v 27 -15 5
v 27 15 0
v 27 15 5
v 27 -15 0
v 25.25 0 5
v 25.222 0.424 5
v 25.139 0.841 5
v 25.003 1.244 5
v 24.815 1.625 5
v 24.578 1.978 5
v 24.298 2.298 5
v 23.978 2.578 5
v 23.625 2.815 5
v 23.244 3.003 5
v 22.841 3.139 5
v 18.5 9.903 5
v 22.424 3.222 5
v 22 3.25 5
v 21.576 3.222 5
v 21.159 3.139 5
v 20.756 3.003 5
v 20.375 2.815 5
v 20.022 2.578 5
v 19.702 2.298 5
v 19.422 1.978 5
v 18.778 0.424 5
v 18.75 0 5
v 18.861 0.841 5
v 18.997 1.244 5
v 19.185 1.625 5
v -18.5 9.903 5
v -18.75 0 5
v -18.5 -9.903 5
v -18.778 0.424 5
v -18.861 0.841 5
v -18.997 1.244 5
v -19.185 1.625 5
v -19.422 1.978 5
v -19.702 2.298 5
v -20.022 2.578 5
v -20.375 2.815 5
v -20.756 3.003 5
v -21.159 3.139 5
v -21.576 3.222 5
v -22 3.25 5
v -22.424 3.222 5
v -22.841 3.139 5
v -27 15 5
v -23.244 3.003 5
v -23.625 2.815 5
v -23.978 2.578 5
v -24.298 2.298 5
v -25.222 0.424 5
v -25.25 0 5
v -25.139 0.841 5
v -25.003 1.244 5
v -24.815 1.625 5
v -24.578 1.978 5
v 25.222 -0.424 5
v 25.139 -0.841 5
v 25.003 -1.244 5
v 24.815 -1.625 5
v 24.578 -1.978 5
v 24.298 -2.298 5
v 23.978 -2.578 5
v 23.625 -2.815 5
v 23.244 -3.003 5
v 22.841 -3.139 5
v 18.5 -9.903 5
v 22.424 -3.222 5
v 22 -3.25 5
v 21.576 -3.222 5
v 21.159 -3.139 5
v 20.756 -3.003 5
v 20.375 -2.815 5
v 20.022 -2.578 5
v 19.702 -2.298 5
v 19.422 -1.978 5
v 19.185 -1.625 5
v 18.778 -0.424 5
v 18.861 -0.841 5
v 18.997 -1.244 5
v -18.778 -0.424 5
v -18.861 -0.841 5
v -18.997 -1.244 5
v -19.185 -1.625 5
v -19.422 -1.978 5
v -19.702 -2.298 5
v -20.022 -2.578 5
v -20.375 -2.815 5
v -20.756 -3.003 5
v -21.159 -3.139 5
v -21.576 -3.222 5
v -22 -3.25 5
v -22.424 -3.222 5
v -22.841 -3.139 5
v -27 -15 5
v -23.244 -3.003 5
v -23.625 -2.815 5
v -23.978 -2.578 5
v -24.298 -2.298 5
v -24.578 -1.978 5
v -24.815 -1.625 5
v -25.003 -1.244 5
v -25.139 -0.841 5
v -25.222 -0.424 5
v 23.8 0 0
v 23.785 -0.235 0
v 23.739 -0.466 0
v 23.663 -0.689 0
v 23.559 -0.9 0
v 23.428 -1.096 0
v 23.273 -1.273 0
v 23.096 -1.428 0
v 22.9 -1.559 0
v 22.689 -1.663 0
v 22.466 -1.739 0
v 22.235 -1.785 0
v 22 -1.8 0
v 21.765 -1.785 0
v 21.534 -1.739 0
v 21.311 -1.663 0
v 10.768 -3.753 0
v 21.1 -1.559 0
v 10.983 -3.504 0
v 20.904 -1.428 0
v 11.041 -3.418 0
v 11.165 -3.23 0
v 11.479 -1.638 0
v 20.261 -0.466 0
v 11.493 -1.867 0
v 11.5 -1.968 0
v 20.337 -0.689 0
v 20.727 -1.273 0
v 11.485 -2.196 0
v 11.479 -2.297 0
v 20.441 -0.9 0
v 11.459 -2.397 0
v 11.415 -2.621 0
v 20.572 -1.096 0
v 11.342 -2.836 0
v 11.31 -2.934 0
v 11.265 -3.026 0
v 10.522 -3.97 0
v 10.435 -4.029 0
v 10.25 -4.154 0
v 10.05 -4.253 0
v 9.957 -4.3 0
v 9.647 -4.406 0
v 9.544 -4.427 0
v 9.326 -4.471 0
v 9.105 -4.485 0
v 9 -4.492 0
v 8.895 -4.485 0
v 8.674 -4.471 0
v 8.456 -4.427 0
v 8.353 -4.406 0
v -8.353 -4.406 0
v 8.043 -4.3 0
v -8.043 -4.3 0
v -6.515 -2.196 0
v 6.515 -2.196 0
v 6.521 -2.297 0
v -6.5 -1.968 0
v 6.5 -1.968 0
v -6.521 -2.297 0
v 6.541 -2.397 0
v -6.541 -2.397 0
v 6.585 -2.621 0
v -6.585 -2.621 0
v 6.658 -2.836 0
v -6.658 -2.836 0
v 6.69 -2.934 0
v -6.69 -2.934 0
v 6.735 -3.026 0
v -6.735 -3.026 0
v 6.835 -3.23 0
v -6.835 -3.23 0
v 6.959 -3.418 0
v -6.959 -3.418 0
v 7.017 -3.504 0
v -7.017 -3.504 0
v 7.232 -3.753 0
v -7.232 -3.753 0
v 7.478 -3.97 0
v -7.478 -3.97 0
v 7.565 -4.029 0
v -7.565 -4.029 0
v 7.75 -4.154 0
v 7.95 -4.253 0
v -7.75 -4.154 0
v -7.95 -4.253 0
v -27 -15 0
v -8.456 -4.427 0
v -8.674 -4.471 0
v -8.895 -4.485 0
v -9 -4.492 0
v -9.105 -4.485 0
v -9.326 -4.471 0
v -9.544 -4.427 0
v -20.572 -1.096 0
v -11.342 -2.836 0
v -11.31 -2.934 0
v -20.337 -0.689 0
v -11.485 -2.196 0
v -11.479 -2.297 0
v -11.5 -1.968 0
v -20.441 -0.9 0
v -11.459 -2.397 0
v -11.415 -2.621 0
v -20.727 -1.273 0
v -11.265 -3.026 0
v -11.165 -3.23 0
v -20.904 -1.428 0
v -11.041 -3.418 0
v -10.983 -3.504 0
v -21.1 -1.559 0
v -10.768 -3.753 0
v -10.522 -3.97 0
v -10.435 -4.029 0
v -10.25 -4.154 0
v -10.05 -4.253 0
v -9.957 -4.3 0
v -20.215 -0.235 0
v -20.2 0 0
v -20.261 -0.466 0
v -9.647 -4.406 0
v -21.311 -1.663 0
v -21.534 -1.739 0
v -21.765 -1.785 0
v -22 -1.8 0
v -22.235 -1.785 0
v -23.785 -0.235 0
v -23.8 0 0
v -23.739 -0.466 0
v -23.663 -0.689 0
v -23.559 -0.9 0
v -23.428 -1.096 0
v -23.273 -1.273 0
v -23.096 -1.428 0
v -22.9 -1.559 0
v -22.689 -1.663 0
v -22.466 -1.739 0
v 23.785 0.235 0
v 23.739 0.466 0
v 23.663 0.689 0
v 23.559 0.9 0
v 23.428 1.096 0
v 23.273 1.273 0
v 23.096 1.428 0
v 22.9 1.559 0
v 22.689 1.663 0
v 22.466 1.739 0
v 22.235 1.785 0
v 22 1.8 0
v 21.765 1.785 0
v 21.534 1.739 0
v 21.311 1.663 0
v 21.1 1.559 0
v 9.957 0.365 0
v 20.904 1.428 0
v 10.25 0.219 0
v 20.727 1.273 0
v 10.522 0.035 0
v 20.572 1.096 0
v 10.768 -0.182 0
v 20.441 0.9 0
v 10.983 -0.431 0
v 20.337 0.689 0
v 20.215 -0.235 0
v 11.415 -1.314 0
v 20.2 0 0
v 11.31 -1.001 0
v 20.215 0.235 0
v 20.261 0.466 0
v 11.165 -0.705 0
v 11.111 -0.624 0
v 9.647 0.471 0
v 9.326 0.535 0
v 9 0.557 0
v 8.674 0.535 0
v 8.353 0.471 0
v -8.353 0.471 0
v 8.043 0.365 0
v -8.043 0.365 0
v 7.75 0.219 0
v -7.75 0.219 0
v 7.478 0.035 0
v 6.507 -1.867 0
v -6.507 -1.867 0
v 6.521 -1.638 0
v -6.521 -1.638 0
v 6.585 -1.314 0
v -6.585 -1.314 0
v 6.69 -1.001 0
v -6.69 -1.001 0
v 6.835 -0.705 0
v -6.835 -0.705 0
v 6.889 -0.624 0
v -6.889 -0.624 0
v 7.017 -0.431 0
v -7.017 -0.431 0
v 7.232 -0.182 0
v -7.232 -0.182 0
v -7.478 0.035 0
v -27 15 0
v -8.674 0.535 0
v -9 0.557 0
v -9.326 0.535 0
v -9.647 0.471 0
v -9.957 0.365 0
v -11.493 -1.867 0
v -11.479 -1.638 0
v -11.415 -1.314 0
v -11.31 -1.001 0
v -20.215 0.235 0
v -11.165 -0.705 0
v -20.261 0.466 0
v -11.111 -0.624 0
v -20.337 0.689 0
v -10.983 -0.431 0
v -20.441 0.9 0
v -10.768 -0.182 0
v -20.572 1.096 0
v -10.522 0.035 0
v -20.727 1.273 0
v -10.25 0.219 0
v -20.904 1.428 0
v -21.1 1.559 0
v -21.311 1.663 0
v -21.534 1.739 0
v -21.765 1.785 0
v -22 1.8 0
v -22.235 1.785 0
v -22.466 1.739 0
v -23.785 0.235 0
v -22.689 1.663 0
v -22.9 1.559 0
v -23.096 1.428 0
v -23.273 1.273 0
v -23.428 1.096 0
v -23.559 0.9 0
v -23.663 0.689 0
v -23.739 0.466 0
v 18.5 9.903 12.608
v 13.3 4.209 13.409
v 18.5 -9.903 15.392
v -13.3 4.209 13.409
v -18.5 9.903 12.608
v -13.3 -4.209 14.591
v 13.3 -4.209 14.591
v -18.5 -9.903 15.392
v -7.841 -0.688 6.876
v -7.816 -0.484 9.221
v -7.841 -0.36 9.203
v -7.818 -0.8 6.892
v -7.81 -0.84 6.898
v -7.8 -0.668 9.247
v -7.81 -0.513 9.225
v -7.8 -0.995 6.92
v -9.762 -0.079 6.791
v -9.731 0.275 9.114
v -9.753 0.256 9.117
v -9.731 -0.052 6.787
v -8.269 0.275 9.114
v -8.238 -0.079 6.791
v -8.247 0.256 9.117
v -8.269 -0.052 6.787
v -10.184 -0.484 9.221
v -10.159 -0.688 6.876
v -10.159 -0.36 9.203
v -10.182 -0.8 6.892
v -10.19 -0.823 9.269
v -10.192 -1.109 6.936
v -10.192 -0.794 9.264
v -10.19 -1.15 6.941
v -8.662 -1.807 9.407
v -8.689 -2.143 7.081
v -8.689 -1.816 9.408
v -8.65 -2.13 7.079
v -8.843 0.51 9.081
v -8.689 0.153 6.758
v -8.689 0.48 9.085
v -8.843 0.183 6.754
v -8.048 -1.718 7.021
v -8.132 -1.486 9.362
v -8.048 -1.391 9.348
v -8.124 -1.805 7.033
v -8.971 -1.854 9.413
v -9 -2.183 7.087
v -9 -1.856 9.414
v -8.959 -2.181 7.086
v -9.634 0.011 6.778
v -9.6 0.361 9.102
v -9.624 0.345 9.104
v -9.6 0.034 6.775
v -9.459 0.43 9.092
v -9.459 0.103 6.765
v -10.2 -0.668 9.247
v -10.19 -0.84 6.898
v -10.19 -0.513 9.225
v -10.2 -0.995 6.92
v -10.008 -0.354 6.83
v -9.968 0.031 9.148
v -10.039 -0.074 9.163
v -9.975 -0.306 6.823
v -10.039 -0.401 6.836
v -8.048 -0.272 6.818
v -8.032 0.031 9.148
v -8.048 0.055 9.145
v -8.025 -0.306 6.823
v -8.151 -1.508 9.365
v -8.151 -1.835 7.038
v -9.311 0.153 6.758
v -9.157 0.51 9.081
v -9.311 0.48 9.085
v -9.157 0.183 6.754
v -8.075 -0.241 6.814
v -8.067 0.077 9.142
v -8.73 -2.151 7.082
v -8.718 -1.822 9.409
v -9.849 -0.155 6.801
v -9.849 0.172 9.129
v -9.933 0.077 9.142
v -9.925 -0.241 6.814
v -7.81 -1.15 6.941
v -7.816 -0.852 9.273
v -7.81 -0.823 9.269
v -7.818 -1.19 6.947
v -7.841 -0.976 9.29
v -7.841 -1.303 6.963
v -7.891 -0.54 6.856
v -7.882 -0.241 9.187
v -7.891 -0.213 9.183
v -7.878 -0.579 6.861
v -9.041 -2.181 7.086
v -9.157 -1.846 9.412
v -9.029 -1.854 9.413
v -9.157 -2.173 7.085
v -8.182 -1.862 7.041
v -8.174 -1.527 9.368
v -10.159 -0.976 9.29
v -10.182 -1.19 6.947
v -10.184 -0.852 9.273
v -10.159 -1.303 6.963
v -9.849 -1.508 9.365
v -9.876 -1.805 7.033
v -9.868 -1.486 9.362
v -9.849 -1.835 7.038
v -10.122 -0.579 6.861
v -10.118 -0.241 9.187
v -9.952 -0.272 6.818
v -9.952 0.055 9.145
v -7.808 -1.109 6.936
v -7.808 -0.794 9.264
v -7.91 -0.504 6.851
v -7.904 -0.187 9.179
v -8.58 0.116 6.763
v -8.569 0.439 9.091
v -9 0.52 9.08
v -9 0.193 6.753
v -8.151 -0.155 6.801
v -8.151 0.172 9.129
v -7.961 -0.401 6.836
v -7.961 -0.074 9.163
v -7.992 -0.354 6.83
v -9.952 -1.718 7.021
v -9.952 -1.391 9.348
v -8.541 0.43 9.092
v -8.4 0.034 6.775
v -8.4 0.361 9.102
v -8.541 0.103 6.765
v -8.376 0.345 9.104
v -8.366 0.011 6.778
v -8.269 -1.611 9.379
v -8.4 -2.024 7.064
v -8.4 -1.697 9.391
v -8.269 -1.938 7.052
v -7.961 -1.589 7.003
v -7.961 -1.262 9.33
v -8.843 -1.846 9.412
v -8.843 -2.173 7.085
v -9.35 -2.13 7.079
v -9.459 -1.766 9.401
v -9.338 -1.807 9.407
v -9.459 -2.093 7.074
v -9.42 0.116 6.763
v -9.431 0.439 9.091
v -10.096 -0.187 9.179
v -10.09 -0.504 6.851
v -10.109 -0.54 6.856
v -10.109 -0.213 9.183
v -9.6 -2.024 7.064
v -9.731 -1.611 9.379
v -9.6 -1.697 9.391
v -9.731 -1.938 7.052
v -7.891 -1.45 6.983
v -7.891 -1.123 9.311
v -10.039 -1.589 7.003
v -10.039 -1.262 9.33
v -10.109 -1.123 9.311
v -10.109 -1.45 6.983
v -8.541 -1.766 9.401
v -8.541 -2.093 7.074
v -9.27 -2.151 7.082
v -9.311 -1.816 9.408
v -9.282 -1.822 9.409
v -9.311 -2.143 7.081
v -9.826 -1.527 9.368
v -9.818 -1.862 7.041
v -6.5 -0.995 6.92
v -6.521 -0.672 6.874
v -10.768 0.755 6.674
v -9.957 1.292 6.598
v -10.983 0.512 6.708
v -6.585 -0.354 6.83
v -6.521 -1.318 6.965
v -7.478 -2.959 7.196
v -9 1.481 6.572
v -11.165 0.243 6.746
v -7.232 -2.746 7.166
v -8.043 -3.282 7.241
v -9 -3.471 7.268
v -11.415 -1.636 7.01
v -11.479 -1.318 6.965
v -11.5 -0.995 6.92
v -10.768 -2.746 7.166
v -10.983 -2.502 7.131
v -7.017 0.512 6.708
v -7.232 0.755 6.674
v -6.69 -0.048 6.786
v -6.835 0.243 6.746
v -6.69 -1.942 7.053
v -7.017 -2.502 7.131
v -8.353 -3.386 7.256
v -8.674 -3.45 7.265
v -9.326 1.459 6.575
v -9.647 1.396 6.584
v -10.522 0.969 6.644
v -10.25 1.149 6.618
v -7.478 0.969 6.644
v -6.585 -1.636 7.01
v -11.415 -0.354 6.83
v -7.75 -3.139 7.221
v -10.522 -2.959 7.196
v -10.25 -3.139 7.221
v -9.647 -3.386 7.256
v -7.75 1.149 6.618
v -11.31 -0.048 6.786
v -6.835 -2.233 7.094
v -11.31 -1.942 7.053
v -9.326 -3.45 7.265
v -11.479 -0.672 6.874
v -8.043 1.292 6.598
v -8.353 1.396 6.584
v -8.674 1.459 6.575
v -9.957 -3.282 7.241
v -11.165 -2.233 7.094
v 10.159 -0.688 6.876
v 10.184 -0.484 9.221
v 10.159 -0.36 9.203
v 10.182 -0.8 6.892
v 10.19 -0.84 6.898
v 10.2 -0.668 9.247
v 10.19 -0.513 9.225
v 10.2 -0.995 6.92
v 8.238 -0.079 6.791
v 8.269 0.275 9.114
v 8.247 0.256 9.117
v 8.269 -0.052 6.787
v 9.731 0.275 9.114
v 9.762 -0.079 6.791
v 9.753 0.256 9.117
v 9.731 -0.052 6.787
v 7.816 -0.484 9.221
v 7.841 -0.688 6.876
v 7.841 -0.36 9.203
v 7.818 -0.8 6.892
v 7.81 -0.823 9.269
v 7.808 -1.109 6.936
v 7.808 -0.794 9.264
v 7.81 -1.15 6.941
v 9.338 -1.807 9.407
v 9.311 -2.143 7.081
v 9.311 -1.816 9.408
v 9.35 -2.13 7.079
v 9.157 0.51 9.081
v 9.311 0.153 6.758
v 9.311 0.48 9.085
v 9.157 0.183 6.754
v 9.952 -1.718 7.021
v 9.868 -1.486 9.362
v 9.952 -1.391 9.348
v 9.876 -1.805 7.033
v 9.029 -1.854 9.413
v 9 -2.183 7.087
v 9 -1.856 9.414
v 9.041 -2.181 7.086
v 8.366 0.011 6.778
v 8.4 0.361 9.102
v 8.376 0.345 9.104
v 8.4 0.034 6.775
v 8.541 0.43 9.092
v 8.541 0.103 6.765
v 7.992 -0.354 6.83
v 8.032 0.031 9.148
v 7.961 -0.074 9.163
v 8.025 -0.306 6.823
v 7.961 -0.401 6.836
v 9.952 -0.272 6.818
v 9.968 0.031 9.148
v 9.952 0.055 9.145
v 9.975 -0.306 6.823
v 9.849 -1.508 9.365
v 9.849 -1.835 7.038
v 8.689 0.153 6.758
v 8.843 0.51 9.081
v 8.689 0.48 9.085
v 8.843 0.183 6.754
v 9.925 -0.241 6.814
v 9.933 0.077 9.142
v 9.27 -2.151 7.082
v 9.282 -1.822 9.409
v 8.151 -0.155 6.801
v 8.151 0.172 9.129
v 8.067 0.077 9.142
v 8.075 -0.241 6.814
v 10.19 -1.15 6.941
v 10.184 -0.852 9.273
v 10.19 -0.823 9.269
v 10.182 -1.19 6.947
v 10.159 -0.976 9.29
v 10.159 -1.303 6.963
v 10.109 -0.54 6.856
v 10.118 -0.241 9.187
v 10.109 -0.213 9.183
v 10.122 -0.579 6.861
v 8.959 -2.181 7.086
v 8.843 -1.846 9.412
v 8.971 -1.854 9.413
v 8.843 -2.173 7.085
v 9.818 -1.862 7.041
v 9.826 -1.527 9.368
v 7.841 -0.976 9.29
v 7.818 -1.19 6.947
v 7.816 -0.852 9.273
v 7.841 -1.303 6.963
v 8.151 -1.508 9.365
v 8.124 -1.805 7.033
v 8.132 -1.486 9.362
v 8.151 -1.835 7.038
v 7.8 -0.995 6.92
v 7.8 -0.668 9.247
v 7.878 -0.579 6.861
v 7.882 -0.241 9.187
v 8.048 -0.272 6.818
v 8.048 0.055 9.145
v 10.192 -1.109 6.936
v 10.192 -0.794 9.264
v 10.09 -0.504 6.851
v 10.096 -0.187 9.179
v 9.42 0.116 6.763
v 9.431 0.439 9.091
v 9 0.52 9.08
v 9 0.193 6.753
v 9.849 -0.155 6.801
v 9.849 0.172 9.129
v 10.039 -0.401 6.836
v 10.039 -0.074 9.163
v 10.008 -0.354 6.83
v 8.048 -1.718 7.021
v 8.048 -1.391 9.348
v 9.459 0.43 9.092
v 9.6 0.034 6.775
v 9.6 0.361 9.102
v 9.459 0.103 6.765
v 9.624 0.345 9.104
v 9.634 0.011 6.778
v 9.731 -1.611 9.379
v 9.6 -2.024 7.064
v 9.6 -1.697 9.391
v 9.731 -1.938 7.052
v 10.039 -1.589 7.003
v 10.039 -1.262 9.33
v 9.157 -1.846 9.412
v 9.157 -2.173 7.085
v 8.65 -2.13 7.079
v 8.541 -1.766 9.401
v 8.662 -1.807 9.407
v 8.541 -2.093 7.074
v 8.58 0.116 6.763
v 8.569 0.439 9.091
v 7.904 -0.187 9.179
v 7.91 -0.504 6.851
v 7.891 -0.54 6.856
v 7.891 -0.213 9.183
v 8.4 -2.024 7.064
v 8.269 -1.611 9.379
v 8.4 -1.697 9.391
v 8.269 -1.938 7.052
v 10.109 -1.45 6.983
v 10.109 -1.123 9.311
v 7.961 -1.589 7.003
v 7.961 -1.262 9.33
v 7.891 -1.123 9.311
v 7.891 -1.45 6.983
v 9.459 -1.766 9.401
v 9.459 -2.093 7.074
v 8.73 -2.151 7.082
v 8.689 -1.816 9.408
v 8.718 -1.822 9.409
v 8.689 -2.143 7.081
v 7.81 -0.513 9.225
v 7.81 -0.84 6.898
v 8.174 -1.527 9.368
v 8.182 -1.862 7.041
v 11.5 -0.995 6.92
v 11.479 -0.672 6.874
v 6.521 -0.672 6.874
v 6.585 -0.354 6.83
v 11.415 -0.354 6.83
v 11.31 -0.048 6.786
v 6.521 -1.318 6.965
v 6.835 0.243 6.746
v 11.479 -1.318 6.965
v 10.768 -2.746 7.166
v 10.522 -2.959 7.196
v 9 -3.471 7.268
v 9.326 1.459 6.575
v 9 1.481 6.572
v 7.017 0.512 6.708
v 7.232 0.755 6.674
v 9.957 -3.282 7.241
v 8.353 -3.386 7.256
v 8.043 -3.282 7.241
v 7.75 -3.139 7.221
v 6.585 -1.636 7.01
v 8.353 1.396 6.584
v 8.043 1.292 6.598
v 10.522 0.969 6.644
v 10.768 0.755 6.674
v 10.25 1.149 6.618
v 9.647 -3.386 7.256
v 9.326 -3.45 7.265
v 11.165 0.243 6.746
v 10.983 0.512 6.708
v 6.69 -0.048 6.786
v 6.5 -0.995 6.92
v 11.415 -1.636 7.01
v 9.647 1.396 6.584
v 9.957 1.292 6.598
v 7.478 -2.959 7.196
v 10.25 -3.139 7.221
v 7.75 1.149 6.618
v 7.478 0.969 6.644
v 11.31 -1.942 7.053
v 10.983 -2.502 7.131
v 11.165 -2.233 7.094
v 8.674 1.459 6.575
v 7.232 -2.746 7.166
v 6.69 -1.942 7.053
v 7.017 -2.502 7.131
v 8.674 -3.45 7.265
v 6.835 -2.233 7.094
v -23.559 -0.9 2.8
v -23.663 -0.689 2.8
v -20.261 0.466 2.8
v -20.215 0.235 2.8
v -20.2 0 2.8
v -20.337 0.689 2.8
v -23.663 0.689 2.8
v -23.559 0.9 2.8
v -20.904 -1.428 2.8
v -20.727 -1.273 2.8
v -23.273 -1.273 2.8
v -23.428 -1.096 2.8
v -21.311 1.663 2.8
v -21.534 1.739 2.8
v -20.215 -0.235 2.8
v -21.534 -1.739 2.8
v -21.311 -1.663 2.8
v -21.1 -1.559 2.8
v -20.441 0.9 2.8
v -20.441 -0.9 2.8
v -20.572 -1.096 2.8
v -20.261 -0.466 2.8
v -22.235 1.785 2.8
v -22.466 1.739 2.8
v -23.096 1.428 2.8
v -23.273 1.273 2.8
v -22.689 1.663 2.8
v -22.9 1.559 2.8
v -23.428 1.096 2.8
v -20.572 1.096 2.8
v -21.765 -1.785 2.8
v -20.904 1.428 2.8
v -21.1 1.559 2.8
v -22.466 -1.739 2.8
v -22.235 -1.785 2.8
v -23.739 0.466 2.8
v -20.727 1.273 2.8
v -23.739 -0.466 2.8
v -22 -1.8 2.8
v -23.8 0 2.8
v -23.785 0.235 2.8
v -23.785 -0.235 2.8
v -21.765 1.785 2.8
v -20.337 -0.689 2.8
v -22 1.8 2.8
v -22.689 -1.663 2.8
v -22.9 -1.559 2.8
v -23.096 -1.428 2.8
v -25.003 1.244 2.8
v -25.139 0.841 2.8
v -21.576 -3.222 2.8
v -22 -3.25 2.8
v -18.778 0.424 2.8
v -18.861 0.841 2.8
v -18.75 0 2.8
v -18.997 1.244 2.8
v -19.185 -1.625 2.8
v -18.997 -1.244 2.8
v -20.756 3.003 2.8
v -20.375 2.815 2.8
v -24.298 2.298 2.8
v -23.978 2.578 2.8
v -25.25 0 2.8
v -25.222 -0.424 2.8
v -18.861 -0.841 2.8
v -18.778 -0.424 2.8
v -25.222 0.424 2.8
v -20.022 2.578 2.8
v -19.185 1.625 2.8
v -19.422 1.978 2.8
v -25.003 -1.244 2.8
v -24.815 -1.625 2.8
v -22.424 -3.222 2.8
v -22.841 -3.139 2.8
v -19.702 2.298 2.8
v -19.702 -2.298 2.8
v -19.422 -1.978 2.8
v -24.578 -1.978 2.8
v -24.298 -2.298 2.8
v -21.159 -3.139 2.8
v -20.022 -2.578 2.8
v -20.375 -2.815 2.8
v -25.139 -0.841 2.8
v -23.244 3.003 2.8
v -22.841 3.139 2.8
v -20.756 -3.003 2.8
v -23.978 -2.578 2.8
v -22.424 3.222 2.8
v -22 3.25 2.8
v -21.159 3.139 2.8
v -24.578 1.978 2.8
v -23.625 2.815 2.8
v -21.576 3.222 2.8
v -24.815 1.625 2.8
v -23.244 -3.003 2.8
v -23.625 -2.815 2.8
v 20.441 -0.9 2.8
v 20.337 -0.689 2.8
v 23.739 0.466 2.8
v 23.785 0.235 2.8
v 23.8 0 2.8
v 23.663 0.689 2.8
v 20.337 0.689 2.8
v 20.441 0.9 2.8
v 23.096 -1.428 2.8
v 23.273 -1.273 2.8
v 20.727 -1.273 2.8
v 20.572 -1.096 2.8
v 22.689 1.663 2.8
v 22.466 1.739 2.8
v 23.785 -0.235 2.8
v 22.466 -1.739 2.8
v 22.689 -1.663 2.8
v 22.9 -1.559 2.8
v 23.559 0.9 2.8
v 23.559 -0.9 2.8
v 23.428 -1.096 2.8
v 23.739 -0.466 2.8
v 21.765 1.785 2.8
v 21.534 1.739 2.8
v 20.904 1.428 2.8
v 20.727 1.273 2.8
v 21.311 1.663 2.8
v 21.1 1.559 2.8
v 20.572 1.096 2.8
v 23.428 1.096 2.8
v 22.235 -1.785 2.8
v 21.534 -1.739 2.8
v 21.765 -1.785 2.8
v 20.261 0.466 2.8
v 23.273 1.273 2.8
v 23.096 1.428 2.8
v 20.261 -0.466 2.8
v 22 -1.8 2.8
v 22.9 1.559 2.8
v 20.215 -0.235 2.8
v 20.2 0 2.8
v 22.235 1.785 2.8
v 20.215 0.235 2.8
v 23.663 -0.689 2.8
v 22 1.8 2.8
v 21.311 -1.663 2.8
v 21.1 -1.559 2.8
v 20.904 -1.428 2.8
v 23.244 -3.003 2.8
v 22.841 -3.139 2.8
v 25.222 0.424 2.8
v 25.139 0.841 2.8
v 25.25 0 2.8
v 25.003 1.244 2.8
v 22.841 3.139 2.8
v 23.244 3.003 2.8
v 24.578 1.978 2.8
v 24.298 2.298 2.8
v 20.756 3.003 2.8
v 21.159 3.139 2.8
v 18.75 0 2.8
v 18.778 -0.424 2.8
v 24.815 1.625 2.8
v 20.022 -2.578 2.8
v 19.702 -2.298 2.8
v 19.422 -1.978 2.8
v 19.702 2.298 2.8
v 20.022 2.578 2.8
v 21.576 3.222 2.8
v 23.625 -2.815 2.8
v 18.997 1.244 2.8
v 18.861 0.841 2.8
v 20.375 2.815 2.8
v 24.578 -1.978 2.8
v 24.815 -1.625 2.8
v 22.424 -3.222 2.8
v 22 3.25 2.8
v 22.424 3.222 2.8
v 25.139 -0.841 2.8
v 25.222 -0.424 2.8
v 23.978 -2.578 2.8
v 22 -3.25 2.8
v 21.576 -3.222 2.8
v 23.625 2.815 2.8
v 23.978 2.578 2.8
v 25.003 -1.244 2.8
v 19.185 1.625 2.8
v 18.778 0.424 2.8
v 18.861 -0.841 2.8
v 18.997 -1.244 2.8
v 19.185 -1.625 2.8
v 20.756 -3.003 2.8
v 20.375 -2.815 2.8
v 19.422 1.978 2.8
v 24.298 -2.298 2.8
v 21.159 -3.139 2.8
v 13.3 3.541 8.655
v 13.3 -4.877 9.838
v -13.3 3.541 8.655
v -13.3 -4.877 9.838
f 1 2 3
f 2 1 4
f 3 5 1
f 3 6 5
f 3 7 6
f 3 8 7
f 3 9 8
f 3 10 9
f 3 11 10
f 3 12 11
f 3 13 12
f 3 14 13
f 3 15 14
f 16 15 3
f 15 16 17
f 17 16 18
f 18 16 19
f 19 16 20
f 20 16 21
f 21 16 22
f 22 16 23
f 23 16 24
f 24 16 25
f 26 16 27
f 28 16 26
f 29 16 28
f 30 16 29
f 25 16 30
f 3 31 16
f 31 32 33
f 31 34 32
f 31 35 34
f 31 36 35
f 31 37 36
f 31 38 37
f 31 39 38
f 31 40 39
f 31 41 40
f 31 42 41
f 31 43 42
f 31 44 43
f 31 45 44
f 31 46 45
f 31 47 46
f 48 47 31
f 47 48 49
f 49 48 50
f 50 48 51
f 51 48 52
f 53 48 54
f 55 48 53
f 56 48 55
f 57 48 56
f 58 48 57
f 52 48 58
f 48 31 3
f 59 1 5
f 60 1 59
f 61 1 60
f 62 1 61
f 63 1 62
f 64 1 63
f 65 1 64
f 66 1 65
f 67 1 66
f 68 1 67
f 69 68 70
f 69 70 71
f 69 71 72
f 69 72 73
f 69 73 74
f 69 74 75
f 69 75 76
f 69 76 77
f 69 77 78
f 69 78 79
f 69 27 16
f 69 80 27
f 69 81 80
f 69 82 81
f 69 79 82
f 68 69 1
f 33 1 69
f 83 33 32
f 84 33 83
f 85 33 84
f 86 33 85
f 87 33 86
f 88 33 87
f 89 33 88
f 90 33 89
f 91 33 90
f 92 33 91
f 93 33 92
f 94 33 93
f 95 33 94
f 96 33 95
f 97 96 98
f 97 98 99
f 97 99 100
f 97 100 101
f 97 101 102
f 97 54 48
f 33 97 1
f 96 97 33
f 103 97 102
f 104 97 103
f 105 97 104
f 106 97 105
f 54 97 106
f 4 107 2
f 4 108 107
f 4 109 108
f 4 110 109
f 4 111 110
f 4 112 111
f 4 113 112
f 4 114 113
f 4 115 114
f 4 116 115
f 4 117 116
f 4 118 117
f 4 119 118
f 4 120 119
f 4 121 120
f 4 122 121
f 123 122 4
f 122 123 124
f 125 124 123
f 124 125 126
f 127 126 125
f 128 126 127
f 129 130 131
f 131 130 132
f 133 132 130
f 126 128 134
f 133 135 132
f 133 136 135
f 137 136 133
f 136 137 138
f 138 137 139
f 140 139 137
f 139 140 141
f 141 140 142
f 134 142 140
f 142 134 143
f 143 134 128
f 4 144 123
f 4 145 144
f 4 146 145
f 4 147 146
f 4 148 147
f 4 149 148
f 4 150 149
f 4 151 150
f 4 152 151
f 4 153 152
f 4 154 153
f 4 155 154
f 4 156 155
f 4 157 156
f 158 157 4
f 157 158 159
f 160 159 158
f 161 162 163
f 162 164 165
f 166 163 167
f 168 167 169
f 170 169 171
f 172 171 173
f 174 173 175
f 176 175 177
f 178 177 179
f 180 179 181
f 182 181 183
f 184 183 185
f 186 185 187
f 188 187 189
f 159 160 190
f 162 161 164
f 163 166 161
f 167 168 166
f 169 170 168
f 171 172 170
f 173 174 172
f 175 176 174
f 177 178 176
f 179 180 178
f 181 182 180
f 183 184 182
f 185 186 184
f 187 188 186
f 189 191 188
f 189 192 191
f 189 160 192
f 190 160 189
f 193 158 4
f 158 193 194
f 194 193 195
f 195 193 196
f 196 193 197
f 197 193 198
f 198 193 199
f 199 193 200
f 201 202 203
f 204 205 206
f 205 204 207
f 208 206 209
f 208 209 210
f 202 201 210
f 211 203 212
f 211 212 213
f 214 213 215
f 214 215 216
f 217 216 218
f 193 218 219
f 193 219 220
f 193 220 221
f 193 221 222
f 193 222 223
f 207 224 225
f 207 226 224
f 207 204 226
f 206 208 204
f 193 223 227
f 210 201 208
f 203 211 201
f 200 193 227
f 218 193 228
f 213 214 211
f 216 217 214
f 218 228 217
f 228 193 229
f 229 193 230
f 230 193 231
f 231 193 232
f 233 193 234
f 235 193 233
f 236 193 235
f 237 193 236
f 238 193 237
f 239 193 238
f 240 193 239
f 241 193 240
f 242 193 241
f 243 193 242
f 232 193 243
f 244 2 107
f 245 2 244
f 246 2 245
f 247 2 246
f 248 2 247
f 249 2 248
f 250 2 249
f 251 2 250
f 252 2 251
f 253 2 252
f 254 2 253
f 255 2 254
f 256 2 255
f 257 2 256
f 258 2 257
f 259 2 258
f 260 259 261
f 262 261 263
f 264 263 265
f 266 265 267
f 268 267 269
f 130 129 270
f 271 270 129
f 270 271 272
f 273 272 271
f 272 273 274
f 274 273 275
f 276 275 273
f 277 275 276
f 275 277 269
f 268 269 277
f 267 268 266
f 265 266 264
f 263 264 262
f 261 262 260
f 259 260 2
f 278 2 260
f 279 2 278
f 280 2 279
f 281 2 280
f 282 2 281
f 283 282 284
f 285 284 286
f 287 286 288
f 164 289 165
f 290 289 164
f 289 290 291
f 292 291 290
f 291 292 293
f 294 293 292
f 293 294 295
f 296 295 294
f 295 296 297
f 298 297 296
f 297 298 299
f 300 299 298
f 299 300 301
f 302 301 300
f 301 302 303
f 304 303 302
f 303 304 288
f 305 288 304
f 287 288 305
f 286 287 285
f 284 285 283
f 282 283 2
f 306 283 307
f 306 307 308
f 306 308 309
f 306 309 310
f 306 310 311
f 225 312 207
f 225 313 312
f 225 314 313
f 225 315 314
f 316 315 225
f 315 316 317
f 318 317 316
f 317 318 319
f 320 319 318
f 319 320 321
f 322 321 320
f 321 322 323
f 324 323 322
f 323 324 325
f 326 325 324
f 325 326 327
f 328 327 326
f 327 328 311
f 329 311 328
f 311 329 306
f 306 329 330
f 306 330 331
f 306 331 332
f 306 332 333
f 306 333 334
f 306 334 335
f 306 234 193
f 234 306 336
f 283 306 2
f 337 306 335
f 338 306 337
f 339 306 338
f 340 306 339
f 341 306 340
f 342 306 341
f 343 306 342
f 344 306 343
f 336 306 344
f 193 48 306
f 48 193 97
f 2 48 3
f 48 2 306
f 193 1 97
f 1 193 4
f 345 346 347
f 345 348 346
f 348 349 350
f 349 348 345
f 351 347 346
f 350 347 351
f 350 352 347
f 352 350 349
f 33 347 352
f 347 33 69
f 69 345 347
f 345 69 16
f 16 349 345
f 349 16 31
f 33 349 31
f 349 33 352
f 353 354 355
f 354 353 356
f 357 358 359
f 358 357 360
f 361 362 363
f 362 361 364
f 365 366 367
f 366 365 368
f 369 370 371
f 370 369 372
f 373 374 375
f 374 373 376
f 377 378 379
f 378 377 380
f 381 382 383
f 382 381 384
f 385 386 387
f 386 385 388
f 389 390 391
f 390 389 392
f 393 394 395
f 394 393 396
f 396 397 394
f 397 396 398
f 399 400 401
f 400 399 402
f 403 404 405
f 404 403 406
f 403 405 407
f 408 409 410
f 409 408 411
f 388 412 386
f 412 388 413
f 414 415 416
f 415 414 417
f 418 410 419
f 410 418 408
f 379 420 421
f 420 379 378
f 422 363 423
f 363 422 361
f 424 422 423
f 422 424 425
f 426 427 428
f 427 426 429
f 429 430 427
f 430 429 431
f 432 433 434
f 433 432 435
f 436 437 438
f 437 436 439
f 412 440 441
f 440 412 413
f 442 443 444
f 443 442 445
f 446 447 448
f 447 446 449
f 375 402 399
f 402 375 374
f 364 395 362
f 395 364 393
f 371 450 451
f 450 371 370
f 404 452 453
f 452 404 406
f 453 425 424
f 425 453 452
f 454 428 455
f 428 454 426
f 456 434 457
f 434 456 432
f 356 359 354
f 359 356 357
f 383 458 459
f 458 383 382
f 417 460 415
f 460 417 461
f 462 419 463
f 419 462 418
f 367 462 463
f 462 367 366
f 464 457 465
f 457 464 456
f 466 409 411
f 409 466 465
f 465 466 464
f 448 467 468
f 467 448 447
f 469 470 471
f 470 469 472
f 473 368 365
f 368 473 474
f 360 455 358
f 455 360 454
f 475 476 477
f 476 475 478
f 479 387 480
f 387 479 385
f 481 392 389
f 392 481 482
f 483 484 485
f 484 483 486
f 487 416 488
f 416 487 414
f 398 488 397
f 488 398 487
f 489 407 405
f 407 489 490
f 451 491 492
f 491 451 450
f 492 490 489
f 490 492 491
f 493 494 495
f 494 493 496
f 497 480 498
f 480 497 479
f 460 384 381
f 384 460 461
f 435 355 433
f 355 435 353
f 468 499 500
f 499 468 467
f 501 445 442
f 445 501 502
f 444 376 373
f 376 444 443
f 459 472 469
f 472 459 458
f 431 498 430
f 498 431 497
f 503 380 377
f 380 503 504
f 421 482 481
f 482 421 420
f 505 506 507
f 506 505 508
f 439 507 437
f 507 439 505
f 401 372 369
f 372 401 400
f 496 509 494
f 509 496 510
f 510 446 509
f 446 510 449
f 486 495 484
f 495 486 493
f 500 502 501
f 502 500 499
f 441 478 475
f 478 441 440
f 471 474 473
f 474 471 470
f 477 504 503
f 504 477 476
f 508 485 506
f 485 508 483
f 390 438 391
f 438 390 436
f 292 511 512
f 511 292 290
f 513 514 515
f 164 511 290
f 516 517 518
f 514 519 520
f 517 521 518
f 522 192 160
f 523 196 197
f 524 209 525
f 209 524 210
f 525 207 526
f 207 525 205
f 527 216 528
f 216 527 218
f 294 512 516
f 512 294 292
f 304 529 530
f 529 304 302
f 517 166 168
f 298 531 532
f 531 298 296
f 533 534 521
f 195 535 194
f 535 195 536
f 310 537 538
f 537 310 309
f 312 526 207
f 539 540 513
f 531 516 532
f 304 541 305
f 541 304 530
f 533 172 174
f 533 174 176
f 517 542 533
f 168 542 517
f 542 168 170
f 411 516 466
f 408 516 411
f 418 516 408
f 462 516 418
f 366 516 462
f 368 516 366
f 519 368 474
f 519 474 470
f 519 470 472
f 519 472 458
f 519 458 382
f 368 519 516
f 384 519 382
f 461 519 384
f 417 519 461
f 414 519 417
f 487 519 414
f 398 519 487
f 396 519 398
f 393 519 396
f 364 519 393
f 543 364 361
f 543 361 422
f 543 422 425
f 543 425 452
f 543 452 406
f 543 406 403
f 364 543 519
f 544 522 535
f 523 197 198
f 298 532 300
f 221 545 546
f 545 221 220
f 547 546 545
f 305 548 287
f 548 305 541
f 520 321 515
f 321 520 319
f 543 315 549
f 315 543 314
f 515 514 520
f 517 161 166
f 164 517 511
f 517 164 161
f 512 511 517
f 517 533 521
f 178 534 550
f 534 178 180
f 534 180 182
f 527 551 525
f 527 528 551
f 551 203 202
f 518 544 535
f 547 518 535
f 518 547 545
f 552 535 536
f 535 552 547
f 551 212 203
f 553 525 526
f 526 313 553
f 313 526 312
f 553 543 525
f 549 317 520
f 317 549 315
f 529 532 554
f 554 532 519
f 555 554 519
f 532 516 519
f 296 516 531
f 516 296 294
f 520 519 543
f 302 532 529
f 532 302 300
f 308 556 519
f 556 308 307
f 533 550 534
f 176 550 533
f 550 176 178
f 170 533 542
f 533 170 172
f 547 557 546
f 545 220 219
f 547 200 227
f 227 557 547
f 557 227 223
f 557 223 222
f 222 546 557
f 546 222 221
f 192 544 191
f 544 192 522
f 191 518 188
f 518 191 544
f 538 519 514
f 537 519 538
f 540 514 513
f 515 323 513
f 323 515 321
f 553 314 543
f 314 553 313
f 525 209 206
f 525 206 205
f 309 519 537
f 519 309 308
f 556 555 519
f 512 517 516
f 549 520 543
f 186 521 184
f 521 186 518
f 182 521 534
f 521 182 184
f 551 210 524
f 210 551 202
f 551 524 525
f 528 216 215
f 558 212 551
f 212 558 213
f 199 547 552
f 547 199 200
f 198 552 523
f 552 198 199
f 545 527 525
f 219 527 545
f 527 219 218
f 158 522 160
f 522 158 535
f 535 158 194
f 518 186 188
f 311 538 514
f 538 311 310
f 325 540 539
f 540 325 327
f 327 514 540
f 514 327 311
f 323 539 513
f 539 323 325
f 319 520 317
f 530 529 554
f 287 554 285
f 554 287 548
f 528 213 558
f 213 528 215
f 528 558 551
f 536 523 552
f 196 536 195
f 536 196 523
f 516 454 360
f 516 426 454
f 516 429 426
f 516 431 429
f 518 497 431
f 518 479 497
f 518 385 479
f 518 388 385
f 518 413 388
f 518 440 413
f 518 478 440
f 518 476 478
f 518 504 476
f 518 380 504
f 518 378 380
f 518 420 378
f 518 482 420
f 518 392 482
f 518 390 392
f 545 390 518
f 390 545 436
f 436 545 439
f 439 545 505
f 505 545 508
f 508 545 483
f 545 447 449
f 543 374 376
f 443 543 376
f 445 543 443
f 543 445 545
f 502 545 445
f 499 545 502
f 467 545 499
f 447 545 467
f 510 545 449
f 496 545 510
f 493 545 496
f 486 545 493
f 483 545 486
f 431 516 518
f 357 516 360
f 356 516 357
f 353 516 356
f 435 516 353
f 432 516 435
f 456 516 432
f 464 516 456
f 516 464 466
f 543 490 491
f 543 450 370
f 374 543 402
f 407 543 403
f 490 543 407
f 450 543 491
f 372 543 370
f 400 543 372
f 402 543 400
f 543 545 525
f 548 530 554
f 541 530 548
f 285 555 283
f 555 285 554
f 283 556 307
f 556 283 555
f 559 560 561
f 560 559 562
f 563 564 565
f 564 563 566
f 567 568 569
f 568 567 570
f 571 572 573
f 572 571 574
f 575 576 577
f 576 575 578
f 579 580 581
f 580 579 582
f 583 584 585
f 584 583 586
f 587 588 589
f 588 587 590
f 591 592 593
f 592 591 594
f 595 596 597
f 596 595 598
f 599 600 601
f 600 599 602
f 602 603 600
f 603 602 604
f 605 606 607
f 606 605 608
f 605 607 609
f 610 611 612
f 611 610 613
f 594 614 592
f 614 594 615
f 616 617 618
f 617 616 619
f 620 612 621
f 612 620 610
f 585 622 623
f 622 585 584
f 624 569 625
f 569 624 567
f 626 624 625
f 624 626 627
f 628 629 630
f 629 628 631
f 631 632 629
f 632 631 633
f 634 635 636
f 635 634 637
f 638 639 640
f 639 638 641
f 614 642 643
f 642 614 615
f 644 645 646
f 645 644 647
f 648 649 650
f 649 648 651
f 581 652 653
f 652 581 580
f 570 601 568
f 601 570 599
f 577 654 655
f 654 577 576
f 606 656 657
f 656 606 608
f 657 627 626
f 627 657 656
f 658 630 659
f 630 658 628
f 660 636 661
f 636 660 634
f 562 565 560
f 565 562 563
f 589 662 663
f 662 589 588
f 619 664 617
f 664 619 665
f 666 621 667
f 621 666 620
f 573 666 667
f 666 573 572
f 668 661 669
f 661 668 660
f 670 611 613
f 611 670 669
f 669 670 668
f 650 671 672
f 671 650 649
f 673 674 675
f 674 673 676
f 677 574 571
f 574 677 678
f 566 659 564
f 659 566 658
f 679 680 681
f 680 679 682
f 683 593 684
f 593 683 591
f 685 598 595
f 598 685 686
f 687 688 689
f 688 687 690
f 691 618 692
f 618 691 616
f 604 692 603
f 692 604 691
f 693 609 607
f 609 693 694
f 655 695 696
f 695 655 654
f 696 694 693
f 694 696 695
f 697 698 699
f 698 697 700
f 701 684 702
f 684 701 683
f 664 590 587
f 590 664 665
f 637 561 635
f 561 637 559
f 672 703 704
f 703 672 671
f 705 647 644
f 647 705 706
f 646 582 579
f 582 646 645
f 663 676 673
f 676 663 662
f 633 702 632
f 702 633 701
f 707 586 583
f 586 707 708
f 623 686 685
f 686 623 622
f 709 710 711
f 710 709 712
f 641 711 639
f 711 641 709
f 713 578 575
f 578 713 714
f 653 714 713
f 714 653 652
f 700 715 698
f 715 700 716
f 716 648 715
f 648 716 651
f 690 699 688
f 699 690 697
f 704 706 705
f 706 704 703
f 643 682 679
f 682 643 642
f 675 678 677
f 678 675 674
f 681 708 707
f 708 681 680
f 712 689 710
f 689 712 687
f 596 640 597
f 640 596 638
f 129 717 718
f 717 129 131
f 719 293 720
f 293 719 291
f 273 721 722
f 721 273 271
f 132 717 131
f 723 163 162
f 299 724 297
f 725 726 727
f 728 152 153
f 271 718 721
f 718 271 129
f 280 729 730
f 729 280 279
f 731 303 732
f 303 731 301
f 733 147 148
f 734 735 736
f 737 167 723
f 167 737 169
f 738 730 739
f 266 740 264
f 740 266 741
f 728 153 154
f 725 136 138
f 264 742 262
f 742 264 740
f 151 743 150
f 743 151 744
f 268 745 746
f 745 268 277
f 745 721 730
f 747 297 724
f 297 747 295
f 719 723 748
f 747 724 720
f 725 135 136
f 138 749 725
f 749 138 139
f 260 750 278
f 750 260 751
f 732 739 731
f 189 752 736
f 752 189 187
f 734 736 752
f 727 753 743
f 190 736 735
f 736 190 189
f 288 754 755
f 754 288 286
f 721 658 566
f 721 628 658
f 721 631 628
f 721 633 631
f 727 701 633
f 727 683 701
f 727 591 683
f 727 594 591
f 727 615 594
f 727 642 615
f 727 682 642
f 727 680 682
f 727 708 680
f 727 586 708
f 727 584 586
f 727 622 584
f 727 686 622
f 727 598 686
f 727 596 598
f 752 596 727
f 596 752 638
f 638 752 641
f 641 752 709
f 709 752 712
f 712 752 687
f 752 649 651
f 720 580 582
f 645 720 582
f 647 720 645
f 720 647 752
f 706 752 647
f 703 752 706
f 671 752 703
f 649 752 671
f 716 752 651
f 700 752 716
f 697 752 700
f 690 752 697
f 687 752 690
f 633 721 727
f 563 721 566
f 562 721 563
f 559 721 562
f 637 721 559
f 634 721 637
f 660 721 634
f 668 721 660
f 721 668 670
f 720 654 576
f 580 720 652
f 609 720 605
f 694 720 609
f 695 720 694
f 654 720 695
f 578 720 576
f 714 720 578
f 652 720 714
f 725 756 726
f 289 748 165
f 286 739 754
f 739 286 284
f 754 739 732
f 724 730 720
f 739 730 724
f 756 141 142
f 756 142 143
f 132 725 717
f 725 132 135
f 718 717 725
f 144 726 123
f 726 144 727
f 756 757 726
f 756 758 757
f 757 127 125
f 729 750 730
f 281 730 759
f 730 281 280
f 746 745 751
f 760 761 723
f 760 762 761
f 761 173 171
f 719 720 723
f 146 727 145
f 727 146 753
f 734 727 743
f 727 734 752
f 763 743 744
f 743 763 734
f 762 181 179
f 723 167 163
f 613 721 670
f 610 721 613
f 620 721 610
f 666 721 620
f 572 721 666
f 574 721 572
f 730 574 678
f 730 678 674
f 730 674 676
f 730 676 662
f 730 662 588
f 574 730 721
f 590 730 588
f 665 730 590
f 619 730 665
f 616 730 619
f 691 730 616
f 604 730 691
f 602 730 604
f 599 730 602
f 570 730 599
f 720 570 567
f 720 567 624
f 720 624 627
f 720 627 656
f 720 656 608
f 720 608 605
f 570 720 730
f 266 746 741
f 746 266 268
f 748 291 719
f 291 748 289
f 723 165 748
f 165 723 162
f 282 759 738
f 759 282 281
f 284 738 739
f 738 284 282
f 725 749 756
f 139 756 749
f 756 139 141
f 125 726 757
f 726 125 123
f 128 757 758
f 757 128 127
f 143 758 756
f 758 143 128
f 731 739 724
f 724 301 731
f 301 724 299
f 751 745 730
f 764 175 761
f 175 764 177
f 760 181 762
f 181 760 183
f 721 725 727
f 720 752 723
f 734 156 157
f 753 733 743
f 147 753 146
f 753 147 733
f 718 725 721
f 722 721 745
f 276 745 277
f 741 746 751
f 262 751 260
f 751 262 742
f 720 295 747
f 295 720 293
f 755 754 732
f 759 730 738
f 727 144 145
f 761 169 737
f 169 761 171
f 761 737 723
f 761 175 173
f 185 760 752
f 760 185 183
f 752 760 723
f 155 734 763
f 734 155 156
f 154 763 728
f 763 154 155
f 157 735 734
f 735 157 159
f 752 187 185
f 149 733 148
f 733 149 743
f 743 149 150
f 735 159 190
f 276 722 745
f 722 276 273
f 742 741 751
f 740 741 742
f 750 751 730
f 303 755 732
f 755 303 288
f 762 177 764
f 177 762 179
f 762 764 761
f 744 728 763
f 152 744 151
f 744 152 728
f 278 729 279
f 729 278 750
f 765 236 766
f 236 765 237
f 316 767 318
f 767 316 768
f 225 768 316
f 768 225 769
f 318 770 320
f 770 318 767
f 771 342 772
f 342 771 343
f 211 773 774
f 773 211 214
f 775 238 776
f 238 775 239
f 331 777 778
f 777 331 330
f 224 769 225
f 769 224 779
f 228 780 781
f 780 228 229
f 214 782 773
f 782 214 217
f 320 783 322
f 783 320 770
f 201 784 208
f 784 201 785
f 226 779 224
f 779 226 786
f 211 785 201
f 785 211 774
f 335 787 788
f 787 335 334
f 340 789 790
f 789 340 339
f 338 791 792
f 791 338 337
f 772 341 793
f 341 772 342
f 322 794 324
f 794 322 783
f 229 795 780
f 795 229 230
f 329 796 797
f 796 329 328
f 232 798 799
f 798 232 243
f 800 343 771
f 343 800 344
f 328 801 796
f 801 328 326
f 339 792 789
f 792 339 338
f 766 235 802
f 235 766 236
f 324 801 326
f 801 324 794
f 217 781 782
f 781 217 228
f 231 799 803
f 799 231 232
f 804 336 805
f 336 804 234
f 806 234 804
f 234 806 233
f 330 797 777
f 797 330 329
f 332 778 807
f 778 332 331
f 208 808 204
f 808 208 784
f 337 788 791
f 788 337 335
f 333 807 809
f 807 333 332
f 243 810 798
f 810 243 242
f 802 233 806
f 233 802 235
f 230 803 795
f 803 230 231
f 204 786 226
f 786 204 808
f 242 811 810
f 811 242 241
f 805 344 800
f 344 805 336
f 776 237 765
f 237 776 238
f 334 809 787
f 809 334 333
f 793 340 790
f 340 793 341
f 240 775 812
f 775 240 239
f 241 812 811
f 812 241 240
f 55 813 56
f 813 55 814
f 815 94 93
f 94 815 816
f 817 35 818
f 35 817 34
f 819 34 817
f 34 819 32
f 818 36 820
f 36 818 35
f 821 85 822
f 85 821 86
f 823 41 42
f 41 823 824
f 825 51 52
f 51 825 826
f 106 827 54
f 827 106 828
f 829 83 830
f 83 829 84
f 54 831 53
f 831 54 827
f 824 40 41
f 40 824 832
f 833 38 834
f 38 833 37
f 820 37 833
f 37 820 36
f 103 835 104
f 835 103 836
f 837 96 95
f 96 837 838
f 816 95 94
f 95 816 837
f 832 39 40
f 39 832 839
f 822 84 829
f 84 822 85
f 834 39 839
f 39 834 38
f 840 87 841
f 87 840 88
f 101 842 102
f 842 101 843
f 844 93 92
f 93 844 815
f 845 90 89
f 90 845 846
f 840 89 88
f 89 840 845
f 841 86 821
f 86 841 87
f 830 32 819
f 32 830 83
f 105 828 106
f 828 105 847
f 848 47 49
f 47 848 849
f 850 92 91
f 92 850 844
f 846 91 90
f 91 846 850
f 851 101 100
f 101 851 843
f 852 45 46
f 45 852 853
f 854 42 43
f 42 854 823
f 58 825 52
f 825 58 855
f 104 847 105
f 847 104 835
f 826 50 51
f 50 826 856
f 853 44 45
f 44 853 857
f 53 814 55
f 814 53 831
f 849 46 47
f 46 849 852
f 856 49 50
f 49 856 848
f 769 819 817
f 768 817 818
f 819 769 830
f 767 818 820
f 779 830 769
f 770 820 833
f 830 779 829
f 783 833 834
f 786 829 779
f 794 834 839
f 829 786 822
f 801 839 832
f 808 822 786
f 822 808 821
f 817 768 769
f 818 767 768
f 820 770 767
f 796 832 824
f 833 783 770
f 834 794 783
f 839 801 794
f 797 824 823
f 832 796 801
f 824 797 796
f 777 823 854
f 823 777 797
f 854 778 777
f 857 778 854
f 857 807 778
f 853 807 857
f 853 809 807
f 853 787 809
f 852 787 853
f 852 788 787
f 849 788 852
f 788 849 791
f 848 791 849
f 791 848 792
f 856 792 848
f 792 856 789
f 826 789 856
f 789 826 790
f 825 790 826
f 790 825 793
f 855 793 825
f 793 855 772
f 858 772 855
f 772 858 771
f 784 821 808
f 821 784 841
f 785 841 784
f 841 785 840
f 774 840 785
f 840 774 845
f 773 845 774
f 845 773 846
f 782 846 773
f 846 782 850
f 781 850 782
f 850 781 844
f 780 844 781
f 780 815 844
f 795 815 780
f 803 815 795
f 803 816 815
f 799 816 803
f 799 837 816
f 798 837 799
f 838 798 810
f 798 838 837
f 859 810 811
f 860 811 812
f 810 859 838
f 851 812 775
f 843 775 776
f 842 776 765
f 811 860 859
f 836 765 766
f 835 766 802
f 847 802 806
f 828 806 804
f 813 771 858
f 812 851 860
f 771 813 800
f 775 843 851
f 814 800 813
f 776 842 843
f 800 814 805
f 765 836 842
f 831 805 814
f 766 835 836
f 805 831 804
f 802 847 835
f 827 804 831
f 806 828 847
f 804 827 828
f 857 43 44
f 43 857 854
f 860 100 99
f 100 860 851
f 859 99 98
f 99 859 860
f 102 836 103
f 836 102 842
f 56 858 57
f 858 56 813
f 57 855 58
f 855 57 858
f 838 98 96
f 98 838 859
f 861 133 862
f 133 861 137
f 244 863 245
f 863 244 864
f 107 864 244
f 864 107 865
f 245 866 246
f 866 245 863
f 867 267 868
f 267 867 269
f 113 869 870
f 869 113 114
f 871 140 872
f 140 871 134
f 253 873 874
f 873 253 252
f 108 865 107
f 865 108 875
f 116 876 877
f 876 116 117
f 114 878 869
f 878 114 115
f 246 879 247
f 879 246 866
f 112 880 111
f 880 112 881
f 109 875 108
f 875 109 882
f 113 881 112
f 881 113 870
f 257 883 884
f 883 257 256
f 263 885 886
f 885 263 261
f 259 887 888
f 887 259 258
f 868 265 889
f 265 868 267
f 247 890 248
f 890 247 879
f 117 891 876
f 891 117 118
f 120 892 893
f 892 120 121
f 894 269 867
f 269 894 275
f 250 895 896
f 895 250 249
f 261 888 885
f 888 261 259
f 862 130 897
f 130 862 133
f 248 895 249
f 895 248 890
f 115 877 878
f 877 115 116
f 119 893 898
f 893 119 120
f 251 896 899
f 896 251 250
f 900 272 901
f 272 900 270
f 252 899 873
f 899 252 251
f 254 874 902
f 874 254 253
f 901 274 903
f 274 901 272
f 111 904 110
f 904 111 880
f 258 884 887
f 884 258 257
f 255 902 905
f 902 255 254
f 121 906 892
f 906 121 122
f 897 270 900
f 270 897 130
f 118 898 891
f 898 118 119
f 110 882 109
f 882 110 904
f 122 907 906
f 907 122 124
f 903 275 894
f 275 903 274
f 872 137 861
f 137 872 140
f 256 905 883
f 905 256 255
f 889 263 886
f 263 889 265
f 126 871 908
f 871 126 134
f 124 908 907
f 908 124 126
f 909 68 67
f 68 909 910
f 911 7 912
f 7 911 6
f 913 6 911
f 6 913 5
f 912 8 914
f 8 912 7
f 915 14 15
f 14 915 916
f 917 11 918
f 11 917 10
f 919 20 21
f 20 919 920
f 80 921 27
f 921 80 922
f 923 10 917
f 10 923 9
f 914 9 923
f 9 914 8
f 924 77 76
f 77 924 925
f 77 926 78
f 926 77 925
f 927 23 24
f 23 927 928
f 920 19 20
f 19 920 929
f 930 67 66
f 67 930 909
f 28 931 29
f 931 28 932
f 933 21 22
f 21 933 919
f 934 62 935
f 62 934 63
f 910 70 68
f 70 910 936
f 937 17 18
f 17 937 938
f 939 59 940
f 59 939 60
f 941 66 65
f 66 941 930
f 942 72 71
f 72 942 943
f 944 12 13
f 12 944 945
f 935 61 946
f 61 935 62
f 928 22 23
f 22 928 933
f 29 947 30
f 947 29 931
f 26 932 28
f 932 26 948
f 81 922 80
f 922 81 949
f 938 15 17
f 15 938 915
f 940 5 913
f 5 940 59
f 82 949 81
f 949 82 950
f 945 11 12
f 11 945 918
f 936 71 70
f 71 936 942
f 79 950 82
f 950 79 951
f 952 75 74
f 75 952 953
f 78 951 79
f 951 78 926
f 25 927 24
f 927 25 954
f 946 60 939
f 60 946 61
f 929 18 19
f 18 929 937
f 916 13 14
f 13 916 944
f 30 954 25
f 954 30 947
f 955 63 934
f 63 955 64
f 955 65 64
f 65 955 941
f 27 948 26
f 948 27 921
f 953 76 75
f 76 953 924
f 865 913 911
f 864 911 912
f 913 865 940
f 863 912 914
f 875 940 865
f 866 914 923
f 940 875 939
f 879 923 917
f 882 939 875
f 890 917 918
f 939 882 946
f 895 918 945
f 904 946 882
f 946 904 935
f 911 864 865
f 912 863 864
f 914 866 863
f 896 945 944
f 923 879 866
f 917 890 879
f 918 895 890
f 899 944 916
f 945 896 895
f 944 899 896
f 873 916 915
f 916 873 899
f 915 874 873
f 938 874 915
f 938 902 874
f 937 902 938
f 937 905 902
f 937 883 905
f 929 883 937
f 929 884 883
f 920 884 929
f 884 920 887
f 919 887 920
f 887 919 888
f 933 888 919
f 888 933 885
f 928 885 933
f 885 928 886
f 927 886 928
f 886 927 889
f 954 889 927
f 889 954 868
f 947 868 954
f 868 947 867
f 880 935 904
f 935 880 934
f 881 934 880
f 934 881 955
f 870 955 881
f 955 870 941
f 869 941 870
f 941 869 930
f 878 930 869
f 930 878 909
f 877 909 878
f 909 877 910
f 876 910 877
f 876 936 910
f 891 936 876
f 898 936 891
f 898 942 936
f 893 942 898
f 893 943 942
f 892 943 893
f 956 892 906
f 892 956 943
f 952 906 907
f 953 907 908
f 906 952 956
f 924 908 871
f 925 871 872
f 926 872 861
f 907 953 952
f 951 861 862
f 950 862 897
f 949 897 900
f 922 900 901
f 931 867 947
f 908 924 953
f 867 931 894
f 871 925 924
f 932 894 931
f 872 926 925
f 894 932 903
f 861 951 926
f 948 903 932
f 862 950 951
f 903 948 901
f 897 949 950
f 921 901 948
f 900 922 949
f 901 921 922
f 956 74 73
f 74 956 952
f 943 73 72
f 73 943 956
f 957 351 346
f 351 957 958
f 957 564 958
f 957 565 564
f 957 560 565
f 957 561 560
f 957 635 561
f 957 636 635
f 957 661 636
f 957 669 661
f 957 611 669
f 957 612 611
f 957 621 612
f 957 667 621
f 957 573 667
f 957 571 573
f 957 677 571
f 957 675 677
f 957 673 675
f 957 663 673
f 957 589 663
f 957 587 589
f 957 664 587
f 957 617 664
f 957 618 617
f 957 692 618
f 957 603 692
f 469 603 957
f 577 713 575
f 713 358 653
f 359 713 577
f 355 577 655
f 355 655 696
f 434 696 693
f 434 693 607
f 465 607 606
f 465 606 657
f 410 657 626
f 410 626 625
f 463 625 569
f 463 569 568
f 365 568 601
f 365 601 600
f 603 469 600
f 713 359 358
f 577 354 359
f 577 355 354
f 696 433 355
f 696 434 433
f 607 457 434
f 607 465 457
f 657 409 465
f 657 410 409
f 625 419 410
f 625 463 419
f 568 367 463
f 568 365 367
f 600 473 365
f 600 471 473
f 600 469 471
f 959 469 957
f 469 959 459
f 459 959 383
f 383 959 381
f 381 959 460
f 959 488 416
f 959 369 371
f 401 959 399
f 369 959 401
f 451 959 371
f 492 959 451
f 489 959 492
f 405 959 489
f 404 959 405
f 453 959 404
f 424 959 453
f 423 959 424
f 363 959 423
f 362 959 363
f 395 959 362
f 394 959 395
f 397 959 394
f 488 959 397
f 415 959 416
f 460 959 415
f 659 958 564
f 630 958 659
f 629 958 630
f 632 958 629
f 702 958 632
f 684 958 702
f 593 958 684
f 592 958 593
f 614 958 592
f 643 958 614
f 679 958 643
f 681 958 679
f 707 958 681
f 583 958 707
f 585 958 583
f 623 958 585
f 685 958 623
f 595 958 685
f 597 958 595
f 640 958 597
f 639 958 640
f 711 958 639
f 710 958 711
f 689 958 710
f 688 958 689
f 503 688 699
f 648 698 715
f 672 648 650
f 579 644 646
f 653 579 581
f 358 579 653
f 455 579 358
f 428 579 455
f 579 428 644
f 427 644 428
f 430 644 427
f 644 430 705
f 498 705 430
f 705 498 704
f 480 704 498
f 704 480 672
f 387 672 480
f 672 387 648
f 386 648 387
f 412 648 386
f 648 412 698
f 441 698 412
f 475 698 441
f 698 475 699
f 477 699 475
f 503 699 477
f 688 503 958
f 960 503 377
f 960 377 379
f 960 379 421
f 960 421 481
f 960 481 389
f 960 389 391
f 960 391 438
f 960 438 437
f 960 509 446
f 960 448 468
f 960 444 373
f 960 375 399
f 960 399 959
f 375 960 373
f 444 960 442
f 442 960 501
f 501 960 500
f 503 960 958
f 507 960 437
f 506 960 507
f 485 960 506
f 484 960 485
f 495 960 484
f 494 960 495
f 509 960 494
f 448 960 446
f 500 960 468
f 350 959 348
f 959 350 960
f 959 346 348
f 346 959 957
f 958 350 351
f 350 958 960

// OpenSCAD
$fn = 48;

// Camera faces +Y; positive pitch tilts its view downward toward +Y.
pitch = 8.0;
camera_contact_height = 14.0;

// Base-removed Astra Pro interface measured from the physical camera.
boss_length = 26.0;
boss_depth = 7.9;
boss_projection = 4.5;
boss_clearance = 0.3; // ponytail: increase only if the printed pocket is tight.
m2_spacing = 18.0;
m2_clearance = 2.4;
m2_head_access = 5.0;
interface_skin = 2.4;

// Physical mounting pair in the clear space between two wheels.
m3_spacing = 44.0;
m3_clearance = 3.6;
m3_head_clearance = 6.5;
base_width = 54.0;
base_depth = 30.0;
base_thickness = 5.0;

saddle_width = 37.0;
saddle_depth = 20.0;
saddle_thickness = boss_projection + boss_clearance + interface_skin;
saddle_half_y = saddle_depth / 2 * cos(pitch);
saddle_height_delta = saddle_depth / 2 * sin(pitch);

assert(m3_spacing == 44.0);
assert(saddle_thickness - boss_projection - boss_clearance >= 2.0);
assert(camera_contact_height - saddle_height_delta - base_thickness >= saddle_thickness);

module saddle_frame() {
    translate([0, 0, camera_contact_height])
        rotate([-pitch, 0, 0])
            children();
}

module support_wedge() {
    polyhedron(
        points=[
            [-saddle_width / 2, -saddle_half_y, base_thickness],
            [ saddle_width / 2, -saddle_half_y, base_thickness],
            [ saddle_width / 2,  saddle_half_y, base_thickness],
            [-saddle_width / 2,  saddle_half_y, base_thickness],
            [-saddle_width / 2, -saddle_half_y, camera_contact_height + saddle_height_delta],
            [ saddle_width / 2, -saddle_half_y, camera_contact_height + saddle_height_delta],
            [ saddle_width / 2,  saddle_half_y, camera_contact_height - saddle_height_delta],
            [-saddle_width / 2,  saddle_half_y, camera_contact_height - saddle_height_delta]
        ],
        faces=[
            [0, 3, 2, 1],
            [4, 5, 6, 7],
            [0, 1, 5, 4],
            [1, 2, 6, 5],
            [2, 3, 7, 6],
            [3, 0, 4, 7]
        ]
    );
}

difference() {
    union() {
        translate([-base_width / 2, -base_depth / 2, 0])
            cube([base_width, base_depth, base_thickness]);
        support_wedge();
    }

    // Camera boss relief, open at the tilted top face.
    saddle_frame()
        translate([
            -(boss_length + 2 * boss_clearance) / 2,
            -(boss_depth + 2 * boss_clearance) / 2,
            -(boss_projection + boss_clearance)
        ])
            cube([
                boss_length + 2 * boss_clearance,
                boss_depth + 2 * boss_clearance,
                boss_projection + boss_clearance + 0.1
            ]);

    // M2 screws enter from below; the larger bores stop at the saddle skin.
    for (x = [-m2_spacing / 2, m2_spacing / 2]) {
        saddle_frame()
            translate([x, 0, -30])
                cylinder(h=31, d=m2_clearance);
        saddle_frame()
            translate([x, 0, -30])
                cylinder(h=30 - saddle_thickness + 0.05, d=m2_head_access);
    }

    // Insert these M3 screws before attaching the camera, then add locknuts below.
    for (x = [-m3_spacing / 2, m3_spacing / 2]) {
        translate([x, 0, -0.1])
            cylinder(h=30, d=m3_clearance);
        translate([x, 0, base_thickness - 2.2])
            cylinder(h=30, d=m3_head_clearance);
    }
}
